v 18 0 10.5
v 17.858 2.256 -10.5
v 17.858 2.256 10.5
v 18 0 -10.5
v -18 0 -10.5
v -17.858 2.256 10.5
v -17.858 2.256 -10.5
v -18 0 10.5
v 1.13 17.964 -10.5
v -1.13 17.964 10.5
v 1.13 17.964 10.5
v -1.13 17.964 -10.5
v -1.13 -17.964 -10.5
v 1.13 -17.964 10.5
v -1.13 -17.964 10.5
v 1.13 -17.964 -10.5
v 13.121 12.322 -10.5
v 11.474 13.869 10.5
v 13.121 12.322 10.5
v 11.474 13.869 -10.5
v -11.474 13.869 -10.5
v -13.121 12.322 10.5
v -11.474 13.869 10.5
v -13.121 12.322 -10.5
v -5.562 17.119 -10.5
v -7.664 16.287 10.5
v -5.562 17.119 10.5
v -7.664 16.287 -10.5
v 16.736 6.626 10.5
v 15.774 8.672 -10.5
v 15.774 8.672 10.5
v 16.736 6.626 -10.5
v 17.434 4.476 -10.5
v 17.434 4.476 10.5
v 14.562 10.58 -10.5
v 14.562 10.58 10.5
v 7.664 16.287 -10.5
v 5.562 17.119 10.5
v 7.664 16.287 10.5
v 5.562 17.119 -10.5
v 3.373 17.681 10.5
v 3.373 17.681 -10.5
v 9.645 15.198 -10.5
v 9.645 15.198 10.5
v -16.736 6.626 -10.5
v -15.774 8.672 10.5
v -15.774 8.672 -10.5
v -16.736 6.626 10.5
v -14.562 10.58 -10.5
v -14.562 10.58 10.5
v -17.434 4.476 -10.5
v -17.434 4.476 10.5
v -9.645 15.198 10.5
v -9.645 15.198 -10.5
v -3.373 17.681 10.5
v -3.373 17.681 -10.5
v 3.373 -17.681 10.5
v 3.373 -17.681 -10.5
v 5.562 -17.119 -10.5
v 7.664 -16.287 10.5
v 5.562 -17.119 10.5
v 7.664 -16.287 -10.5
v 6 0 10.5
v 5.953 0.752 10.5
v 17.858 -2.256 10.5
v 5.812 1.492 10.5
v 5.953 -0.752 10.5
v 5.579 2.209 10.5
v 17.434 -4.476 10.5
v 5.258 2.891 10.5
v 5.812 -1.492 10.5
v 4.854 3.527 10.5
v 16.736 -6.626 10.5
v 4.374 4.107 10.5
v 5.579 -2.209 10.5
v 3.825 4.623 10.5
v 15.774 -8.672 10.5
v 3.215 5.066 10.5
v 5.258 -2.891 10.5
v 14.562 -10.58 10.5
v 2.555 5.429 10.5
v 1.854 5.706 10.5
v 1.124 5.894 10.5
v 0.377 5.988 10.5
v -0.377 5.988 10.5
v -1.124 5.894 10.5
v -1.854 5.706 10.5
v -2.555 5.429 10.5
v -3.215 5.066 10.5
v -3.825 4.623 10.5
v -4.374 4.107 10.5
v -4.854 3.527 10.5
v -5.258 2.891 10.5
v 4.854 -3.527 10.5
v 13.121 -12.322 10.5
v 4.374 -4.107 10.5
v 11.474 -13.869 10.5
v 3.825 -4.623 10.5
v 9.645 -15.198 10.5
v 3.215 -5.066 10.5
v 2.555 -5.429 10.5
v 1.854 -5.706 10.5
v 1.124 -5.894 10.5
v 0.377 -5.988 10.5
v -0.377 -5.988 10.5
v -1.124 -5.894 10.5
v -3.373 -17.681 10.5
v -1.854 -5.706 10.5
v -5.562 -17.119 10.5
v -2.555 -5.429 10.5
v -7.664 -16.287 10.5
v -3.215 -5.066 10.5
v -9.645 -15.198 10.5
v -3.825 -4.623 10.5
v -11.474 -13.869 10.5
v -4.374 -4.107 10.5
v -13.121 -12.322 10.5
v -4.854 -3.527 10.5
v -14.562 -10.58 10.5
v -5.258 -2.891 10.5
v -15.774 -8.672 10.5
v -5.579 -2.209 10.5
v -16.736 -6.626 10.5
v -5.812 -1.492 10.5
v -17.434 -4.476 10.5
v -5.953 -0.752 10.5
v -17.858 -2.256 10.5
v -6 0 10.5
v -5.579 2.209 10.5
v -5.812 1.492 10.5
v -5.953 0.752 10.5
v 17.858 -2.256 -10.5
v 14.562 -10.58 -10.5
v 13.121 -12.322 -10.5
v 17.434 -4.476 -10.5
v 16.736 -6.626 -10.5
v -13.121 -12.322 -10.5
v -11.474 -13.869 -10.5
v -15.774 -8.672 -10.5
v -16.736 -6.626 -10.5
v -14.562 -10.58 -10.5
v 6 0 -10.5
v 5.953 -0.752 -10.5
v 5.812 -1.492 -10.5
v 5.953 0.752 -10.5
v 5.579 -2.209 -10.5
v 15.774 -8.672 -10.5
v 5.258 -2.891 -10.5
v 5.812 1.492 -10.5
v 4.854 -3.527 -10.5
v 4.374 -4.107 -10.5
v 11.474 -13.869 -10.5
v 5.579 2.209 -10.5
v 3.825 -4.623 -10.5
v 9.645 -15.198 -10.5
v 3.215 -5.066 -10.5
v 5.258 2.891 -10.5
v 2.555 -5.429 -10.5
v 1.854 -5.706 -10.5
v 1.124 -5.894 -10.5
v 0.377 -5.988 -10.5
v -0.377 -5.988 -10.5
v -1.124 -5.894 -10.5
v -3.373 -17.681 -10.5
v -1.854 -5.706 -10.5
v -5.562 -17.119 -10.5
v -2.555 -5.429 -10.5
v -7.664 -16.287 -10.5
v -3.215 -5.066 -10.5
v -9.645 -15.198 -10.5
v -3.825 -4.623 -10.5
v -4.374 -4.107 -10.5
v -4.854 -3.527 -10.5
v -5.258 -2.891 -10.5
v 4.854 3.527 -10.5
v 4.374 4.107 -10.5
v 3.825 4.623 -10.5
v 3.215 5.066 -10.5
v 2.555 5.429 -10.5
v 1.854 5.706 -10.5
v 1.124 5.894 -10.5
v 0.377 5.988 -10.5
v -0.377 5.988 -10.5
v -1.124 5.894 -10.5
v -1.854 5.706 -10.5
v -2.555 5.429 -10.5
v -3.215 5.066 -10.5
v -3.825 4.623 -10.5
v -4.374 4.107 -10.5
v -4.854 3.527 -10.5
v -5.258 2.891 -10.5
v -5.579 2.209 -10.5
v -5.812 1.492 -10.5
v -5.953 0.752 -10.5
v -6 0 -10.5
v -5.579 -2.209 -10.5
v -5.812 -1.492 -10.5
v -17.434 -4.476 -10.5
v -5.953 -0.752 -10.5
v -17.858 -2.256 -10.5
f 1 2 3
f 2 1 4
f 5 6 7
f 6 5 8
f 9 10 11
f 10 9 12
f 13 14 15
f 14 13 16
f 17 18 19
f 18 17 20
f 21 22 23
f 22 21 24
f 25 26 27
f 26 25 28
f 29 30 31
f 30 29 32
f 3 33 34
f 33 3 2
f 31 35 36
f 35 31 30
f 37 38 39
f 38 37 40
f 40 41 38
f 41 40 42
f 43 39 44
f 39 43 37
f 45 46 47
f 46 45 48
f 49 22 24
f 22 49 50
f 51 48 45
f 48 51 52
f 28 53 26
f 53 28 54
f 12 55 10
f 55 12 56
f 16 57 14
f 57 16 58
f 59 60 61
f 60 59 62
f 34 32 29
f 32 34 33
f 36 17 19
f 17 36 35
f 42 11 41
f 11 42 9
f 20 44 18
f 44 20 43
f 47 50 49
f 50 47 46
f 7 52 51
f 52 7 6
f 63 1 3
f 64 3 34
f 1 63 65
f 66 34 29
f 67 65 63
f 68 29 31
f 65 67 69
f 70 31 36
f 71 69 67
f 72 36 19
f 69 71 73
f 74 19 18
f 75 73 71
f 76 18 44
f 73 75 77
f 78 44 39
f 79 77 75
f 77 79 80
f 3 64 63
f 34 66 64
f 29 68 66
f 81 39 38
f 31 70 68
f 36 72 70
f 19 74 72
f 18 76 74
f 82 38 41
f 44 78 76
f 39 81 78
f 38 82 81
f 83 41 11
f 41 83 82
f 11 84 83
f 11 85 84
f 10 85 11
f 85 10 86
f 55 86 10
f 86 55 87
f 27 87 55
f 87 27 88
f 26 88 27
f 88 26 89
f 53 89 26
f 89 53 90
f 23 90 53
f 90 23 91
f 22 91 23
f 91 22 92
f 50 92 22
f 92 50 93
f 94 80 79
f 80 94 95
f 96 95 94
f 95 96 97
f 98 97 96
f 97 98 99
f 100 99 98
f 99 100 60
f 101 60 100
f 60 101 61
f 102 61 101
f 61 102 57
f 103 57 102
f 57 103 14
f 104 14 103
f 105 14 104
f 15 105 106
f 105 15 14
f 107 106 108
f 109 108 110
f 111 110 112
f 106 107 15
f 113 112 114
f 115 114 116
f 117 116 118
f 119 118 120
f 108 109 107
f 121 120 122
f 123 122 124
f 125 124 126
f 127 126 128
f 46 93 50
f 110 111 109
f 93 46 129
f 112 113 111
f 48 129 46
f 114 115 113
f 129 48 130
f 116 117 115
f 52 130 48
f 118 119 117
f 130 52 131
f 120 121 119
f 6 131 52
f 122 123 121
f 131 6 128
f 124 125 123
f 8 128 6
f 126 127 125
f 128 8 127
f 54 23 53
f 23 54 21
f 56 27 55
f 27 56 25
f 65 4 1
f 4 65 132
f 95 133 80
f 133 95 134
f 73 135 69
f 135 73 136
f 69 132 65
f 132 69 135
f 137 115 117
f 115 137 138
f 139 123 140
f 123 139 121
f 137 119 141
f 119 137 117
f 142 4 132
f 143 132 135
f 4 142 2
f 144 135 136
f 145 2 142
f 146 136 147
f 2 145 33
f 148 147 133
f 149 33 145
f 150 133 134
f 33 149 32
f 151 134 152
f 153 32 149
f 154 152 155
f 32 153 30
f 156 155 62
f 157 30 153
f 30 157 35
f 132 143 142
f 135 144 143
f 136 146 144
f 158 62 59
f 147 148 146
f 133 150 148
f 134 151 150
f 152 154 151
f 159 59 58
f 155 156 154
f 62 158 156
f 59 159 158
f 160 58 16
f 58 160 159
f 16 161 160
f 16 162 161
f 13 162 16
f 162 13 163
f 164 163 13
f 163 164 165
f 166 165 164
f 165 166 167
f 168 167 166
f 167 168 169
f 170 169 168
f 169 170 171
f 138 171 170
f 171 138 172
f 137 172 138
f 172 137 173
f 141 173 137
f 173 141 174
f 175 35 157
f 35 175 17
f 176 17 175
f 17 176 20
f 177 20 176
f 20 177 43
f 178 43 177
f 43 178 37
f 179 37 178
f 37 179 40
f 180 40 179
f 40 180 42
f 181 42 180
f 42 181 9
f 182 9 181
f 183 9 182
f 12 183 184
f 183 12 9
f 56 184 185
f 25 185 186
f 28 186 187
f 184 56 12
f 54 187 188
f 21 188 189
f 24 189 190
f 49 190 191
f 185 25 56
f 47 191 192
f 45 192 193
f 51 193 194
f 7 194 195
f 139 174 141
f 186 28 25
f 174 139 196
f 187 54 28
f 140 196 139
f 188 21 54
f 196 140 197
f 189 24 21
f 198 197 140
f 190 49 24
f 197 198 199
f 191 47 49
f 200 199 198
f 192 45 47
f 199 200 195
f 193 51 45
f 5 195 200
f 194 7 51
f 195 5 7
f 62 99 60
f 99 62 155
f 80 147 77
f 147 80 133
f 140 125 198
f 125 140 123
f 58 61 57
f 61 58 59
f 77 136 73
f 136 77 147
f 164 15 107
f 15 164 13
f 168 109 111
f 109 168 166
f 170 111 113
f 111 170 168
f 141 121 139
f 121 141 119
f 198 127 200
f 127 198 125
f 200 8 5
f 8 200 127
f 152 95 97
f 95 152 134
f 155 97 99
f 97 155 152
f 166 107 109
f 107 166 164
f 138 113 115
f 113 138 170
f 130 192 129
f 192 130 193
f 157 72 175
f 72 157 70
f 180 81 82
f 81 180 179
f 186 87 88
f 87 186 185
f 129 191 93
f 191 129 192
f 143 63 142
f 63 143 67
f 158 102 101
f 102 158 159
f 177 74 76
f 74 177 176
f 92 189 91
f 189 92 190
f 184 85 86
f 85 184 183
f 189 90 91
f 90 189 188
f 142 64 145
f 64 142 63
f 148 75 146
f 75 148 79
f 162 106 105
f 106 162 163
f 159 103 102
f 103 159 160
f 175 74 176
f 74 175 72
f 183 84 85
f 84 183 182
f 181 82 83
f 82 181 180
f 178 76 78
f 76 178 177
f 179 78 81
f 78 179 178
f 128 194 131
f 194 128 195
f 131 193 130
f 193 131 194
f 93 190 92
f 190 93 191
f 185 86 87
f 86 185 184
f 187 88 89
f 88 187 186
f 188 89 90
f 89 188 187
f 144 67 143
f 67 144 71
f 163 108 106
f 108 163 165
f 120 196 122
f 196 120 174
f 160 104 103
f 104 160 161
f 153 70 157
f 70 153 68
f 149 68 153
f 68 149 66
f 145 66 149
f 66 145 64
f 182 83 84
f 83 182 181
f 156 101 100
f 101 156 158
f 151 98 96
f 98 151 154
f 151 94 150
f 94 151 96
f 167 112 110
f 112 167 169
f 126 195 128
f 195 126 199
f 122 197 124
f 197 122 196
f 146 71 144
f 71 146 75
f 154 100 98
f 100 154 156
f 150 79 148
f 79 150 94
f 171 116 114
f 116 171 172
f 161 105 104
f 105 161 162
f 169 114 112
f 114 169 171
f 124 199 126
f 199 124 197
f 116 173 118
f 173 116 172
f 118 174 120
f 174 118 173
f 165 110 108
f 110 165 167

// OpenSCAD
$fn = 50;


difference() {
	union() {
		translate(v = [0, 0, -10.5000000000]) {
			cylinder(h = 21, r = 18.0000000000);
		}
	}
	union() {
		translate(v = [0, 0, -100.0000000000]) {
			cylinder(h = 200, r = 6);
		}
	}
}
